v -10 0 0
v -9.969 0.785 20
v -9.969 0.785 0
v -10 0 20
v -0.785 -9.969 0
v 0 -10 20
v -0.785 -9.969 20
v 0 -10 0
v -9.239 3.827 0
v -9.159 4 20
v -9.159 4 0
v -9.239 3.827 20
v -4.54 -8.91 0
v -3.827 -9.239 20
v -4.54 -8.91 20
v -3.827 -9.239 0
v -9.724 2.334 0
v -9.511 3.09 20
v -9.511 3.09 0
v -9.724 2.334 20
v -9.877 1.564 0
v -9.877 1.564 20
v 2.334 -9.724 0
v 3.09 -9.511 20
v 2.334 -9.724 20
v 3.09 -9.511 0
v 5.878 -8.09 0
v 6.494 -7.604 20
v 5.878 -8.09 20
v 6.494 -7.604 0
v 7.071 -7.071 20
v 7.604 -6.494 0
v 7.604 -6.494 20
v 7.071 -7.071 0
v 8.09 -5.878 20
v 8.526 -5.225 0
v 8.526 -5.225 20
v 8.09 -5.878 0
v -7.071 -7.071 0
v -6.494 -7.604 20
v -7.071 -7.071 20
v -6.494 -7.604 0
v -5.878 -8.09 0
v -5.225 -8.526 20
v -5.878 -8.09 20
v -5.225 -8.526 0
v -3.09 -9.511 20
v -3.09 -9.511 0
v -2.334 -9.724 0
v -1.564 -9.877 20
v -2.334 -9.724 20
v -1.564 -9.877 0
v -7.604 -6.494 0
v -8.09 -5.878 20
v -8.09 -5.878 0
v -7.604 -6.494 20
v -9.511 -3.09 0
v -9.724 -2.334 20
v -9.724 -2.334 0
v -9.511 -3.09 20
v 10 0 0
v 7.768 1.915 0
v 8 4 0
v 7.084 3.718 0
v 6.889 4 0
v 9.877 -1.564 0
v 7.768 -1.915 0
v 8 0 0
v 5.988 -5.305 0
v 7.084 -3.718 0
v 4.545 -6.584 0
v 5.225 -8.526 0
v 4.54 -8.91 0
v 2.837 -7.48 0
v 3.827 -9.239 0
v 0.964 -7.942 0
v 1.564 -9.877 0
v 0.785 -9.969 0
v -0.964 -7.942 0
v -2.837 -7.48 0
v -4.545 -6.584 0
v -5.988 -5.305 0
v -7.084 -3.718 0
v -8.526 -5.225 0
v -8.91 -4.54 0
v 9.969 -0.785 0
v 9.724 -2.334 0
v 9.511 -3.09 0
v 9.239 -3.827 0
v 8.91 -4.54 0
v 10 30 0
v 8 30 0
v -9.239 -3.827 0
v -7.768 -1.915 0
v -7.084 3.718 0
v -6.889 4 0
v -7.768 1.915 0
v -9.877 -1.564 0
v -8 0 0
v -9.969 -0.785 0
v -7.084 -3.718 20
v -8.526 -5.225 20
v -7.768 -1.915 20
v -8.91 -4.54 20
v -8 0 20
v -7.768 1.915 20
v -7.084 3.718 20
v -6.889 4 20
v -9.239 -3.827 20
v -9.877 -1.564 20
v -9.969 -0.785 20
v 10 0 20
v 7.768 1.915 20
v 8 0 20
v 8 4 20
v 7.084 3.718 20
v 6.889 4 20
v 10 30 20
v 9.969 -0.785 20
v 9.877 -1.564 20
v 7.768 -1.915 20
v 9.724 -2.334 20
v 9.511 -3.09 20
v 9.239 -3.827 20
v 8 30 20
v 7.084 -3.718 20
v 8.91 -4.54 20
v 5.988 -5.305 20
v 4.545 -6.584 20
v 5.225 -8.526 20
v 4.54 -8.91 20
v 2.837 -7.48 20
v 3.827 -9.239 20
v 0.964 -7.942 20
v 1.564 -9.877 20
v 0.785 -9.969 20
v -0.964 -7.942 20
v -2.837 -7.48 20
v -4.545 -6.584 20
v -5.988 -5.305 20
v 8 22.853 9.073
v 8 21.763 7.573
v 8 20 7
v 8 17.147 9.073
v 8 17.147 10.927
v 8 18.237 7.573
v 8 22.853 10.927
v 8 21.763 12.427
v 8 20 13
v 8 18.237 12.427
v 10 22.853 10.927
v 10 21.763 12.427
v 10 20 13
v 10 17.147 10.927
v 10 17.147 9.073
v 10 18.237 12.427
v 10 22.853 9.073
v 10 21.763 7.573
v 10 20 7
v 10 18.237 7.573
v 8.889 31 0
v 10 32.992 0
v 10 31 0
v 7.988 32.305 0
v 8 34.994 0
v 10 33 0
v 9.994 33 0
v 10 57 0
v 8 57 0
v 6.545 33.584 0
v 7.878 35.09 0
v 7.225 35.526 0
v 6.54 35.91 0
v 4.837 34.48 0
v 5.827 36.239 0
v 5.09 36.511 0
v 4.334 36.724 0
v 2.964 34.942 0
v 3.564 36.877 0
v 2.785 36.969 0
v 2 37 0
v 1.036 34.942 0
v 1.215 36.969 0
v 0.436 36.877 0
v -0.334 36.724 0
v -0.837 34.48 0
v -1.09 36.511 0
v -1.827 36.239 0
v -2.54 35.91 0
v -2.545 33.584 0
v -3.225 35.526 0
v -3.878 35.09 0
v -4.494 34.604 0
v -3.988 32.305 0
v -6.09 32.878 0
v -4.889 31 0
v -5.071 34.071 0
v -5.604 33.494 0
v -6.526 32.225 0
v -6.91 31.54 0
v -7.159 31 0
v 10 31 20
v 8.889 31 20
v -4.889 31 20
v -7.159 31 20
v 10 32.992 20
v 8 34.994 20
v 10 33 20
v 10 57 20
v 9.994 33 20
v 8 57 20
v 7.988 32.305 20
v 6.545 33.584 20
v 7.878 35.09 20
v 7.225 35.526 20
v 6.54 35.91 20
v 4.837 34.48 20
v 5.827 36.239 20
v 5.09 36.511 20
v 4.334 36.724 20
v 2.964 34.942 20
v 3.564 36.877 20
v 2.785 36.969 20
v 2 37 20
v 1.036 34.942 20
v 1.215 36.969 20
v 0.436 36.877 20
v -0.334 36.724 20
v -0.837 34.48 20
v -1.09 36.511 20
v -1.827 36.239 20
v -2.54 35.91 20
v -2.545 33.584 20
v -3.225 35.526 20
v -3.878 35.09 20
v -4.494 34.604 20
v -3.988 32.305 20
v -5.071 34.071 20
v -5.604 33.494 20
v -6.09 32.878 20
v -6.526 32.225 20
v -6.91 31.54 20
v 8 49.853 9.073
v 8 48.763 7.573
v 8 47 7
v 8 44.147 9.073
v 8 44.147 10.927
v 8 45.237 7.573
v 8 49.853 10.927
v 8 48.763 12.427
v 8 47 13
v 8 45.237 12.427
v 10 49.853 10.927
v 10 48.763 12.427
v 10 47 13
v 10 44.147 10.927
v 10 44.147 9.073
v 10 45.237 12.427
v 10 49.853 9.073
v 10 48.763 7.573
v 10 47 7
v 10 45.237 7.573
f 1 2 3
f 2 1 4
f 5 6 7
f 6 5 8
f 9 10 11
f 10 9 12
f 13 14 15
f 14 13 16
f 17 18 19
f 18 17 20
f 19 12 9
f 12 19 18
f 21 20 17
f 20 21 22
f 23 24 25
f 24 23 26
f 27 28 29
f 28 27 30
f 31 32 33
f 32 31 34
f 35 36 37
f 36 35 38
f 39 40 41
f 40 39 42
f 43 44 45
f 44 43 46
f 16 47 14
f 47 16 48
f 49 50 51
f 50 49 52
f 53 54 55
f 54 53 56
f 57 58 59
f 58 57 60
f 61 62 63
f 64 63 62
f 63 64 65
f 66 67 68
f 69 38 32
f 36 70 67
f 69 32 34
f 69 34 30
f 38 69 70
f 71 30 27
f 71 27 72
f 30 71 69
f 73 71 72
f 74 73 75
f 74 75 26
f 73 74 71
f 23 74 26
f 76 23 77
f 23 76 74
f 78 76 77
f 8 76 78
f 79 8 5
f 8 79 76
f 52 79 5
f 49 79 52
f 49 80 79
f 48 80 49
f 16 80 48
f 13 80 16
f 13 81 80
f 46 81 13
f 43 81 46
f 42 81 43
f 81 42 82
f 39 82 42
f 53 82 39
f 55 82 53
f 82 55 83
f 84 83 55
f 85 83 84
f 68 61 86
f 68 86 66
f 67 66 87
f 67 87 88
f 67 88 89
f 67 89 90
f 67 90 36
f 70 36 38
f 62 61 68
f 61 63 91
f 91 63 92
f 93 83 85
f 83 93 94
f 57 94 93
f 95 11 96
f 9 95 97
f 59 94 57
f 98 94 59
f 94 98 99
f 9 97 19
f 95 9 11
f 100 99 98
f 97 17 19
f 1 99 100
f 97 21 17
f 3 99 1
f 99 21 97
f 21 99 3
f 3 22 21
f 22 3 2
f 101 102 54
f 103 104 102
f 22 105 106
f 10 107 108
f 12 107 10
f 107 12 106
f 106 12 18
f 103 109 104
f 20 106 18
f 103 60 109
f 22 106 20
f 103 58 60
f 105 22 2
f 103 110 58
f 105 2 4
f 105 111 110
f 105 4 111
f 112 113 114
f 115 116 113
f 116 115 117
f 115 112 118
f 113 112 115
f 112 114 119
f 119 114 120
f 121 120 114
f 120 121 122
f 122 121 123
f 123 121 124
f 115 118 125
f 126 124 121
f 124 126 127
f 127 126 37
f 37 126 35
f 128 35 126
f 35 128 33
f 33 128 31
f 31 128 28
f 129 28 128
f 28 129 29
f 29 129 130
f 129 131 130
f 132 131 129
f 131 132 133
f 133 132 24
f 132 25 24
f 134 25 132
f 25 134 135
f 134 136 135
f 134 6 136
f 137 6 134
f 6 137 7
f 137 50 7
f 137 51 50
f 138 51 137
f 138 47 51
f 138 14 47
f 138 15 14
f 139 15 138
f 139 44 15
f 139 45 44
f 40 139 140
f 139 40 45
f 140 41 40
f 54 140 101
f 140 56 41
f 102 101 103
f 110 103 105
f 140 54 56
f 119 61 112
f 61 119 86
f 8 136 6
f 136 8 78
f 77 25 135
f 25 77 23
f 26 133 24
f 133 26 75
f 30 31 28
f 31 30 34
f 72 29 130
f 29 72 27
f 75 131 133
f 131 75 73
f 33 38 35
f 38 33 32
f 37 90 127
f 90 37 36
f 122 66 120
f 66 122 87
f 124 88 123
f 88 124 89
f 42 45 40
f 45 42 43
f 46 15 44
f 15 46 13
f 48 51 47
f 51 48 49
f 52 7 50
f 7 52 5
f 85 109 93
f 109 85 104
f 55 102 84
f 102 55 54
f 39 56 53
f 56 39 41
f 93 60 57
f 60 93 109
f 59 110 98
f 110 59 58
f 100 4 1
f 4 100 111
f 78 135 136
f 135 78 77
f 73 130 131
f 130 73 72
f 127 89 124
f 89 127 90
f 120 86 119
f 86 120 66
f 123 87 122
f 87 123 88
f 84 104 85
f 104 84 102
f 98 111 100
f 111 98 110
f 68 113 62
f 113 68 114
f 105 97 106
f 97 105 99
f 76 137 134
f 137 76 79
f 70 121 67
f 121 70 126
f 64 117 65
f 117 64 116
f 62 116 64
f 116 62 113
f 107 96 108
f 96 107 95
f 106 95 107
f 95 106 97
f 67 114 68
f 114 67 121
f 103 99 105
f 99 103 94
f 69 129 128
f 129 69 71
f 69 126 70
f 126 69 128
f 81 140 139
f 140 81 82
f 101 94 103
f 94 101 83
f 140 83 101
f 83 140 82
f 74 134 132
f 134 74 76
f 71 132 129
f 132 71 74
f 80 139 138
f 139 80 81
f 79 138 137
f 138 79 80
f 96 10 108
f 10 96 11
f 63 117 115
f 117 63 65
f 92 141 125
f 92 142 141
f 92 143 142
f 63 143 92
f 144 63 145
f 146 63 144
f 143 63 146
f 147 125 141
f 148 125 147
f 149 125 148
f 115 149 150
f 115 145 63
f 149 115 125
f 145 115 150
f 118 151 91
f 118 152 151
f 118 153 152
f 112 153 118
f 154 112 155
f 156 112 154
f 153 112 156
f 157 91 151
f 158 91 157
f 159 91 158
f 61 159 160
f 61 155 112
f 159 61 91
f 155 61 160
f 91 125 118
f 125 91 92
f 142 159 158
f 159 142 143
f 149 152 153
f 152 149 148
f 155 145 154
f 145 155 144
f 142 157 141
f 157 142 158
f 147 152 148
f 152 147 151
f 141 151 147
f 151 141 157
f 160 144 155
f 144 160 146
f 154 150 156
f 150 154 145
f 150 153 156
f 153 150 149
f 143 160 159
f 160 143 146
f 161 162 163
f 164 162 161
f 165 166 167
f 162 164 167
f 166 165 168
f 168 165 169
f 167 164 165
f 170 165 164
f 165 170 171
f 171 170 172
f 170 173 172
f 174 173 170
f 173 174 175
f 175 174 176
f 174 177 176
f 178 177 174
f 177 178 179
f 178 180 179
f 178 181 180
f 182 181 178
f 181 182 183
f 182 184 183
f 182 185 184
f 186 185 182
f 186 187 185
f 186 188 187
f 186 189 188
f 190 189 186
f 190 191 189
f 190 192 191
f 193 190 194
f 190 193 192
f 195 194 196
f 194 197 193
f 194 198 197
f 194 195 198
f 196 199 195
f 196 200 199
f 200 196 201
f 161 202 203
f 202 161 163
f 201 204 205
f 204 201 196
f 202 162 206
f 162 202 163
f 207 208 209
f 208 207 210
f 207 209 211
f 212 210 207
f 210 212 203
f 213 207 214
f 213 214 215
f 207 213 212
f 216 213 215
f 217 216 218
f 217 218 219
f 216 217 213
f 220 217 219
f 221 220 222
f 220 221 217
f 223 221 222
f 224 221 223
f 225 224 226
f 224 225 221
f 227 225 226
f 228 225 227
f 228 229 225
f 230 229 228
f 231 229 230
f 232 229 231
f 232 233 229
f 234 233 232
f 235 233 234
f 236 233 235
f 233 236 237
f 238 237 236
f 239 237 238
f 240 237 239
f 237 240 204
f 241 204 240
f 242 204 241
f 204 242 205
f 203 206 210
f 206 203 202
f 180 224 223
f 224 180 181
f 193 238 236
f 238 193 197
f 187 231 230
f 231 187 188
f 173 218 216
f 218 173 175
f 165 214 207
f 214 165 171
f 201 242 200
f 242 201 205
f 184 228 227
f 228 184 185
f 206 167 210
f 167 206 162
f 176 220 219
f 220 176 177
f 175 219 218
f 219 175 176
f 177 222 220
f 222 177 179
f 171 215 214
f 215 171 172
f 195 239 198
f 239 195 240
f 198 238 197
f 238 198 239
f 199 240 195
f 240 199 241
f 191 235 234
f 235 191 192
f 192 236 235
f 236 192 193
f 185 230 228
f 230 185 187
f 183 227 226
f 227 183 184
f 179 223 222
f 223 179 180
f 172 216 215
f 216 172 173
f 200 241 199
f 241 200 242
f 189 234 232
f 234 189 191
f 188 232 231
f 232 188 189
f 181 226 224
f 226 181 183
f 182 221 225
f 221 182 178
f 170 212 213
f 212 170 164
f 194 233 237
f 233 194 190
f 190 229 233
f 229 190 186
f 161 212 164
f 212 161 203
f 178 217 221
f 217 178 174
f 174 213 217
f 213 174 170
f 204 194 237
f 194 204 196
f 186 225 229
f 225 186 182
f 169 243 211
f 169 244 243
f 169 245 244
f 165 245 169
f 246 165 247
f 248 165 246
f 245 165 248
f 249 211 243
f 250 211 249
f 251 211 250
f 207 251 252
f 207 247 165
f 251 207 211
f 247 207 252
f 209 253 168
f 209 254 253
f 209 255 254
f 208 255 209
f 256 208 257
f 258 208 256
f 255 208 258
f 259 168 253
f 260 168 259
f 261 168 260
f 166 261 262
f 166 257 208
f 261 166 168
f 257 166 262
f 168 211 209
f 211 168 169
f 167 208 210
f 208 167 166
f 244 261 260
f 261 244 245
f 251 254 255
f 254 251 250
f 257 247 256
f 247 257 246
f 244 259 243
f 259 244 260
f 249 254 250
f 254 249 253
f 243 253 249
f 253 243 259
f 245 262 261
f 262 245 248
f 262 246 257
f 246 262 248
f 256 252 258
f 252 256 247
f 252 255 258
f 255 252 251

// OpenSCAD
// base to fit on standard cut off 2litre plastic bottle
// h is height of whole shape
h=20;

difference(){
    cylinder(h, 10, 10, $fn=80);
    cylinder(h, 8, 8, $snf=80);
    translate([-15,4,0]){
    cube([30,30,40]);
    // thickness of base
  
}}
translate([8,0,0]){
    difference(){
    cube([2,30,20]);
    translate([0,20,10]){
    rotate([0,90,0]){
    cylinder(20, 3, 3);
}}}}

translate([2,27,0]){
 difference(){
    cylinder(h, 10, 10, $fn=80);
    cylinder(h, 8, 8, $snf=80);
    translate([-15,-16,0]){
    cube([30,20,40]);
    translate([23,10,0]){
        cube([25,20,20]);}
    // thickness of base
  
 }}
 translate([6,6,0]){
    difference(){
    cube([2,24,20]);
    translate([0,14,10]){
    rotate([0,90,0]){
    cylinder(20, 3, 3);
 }}}}
}
